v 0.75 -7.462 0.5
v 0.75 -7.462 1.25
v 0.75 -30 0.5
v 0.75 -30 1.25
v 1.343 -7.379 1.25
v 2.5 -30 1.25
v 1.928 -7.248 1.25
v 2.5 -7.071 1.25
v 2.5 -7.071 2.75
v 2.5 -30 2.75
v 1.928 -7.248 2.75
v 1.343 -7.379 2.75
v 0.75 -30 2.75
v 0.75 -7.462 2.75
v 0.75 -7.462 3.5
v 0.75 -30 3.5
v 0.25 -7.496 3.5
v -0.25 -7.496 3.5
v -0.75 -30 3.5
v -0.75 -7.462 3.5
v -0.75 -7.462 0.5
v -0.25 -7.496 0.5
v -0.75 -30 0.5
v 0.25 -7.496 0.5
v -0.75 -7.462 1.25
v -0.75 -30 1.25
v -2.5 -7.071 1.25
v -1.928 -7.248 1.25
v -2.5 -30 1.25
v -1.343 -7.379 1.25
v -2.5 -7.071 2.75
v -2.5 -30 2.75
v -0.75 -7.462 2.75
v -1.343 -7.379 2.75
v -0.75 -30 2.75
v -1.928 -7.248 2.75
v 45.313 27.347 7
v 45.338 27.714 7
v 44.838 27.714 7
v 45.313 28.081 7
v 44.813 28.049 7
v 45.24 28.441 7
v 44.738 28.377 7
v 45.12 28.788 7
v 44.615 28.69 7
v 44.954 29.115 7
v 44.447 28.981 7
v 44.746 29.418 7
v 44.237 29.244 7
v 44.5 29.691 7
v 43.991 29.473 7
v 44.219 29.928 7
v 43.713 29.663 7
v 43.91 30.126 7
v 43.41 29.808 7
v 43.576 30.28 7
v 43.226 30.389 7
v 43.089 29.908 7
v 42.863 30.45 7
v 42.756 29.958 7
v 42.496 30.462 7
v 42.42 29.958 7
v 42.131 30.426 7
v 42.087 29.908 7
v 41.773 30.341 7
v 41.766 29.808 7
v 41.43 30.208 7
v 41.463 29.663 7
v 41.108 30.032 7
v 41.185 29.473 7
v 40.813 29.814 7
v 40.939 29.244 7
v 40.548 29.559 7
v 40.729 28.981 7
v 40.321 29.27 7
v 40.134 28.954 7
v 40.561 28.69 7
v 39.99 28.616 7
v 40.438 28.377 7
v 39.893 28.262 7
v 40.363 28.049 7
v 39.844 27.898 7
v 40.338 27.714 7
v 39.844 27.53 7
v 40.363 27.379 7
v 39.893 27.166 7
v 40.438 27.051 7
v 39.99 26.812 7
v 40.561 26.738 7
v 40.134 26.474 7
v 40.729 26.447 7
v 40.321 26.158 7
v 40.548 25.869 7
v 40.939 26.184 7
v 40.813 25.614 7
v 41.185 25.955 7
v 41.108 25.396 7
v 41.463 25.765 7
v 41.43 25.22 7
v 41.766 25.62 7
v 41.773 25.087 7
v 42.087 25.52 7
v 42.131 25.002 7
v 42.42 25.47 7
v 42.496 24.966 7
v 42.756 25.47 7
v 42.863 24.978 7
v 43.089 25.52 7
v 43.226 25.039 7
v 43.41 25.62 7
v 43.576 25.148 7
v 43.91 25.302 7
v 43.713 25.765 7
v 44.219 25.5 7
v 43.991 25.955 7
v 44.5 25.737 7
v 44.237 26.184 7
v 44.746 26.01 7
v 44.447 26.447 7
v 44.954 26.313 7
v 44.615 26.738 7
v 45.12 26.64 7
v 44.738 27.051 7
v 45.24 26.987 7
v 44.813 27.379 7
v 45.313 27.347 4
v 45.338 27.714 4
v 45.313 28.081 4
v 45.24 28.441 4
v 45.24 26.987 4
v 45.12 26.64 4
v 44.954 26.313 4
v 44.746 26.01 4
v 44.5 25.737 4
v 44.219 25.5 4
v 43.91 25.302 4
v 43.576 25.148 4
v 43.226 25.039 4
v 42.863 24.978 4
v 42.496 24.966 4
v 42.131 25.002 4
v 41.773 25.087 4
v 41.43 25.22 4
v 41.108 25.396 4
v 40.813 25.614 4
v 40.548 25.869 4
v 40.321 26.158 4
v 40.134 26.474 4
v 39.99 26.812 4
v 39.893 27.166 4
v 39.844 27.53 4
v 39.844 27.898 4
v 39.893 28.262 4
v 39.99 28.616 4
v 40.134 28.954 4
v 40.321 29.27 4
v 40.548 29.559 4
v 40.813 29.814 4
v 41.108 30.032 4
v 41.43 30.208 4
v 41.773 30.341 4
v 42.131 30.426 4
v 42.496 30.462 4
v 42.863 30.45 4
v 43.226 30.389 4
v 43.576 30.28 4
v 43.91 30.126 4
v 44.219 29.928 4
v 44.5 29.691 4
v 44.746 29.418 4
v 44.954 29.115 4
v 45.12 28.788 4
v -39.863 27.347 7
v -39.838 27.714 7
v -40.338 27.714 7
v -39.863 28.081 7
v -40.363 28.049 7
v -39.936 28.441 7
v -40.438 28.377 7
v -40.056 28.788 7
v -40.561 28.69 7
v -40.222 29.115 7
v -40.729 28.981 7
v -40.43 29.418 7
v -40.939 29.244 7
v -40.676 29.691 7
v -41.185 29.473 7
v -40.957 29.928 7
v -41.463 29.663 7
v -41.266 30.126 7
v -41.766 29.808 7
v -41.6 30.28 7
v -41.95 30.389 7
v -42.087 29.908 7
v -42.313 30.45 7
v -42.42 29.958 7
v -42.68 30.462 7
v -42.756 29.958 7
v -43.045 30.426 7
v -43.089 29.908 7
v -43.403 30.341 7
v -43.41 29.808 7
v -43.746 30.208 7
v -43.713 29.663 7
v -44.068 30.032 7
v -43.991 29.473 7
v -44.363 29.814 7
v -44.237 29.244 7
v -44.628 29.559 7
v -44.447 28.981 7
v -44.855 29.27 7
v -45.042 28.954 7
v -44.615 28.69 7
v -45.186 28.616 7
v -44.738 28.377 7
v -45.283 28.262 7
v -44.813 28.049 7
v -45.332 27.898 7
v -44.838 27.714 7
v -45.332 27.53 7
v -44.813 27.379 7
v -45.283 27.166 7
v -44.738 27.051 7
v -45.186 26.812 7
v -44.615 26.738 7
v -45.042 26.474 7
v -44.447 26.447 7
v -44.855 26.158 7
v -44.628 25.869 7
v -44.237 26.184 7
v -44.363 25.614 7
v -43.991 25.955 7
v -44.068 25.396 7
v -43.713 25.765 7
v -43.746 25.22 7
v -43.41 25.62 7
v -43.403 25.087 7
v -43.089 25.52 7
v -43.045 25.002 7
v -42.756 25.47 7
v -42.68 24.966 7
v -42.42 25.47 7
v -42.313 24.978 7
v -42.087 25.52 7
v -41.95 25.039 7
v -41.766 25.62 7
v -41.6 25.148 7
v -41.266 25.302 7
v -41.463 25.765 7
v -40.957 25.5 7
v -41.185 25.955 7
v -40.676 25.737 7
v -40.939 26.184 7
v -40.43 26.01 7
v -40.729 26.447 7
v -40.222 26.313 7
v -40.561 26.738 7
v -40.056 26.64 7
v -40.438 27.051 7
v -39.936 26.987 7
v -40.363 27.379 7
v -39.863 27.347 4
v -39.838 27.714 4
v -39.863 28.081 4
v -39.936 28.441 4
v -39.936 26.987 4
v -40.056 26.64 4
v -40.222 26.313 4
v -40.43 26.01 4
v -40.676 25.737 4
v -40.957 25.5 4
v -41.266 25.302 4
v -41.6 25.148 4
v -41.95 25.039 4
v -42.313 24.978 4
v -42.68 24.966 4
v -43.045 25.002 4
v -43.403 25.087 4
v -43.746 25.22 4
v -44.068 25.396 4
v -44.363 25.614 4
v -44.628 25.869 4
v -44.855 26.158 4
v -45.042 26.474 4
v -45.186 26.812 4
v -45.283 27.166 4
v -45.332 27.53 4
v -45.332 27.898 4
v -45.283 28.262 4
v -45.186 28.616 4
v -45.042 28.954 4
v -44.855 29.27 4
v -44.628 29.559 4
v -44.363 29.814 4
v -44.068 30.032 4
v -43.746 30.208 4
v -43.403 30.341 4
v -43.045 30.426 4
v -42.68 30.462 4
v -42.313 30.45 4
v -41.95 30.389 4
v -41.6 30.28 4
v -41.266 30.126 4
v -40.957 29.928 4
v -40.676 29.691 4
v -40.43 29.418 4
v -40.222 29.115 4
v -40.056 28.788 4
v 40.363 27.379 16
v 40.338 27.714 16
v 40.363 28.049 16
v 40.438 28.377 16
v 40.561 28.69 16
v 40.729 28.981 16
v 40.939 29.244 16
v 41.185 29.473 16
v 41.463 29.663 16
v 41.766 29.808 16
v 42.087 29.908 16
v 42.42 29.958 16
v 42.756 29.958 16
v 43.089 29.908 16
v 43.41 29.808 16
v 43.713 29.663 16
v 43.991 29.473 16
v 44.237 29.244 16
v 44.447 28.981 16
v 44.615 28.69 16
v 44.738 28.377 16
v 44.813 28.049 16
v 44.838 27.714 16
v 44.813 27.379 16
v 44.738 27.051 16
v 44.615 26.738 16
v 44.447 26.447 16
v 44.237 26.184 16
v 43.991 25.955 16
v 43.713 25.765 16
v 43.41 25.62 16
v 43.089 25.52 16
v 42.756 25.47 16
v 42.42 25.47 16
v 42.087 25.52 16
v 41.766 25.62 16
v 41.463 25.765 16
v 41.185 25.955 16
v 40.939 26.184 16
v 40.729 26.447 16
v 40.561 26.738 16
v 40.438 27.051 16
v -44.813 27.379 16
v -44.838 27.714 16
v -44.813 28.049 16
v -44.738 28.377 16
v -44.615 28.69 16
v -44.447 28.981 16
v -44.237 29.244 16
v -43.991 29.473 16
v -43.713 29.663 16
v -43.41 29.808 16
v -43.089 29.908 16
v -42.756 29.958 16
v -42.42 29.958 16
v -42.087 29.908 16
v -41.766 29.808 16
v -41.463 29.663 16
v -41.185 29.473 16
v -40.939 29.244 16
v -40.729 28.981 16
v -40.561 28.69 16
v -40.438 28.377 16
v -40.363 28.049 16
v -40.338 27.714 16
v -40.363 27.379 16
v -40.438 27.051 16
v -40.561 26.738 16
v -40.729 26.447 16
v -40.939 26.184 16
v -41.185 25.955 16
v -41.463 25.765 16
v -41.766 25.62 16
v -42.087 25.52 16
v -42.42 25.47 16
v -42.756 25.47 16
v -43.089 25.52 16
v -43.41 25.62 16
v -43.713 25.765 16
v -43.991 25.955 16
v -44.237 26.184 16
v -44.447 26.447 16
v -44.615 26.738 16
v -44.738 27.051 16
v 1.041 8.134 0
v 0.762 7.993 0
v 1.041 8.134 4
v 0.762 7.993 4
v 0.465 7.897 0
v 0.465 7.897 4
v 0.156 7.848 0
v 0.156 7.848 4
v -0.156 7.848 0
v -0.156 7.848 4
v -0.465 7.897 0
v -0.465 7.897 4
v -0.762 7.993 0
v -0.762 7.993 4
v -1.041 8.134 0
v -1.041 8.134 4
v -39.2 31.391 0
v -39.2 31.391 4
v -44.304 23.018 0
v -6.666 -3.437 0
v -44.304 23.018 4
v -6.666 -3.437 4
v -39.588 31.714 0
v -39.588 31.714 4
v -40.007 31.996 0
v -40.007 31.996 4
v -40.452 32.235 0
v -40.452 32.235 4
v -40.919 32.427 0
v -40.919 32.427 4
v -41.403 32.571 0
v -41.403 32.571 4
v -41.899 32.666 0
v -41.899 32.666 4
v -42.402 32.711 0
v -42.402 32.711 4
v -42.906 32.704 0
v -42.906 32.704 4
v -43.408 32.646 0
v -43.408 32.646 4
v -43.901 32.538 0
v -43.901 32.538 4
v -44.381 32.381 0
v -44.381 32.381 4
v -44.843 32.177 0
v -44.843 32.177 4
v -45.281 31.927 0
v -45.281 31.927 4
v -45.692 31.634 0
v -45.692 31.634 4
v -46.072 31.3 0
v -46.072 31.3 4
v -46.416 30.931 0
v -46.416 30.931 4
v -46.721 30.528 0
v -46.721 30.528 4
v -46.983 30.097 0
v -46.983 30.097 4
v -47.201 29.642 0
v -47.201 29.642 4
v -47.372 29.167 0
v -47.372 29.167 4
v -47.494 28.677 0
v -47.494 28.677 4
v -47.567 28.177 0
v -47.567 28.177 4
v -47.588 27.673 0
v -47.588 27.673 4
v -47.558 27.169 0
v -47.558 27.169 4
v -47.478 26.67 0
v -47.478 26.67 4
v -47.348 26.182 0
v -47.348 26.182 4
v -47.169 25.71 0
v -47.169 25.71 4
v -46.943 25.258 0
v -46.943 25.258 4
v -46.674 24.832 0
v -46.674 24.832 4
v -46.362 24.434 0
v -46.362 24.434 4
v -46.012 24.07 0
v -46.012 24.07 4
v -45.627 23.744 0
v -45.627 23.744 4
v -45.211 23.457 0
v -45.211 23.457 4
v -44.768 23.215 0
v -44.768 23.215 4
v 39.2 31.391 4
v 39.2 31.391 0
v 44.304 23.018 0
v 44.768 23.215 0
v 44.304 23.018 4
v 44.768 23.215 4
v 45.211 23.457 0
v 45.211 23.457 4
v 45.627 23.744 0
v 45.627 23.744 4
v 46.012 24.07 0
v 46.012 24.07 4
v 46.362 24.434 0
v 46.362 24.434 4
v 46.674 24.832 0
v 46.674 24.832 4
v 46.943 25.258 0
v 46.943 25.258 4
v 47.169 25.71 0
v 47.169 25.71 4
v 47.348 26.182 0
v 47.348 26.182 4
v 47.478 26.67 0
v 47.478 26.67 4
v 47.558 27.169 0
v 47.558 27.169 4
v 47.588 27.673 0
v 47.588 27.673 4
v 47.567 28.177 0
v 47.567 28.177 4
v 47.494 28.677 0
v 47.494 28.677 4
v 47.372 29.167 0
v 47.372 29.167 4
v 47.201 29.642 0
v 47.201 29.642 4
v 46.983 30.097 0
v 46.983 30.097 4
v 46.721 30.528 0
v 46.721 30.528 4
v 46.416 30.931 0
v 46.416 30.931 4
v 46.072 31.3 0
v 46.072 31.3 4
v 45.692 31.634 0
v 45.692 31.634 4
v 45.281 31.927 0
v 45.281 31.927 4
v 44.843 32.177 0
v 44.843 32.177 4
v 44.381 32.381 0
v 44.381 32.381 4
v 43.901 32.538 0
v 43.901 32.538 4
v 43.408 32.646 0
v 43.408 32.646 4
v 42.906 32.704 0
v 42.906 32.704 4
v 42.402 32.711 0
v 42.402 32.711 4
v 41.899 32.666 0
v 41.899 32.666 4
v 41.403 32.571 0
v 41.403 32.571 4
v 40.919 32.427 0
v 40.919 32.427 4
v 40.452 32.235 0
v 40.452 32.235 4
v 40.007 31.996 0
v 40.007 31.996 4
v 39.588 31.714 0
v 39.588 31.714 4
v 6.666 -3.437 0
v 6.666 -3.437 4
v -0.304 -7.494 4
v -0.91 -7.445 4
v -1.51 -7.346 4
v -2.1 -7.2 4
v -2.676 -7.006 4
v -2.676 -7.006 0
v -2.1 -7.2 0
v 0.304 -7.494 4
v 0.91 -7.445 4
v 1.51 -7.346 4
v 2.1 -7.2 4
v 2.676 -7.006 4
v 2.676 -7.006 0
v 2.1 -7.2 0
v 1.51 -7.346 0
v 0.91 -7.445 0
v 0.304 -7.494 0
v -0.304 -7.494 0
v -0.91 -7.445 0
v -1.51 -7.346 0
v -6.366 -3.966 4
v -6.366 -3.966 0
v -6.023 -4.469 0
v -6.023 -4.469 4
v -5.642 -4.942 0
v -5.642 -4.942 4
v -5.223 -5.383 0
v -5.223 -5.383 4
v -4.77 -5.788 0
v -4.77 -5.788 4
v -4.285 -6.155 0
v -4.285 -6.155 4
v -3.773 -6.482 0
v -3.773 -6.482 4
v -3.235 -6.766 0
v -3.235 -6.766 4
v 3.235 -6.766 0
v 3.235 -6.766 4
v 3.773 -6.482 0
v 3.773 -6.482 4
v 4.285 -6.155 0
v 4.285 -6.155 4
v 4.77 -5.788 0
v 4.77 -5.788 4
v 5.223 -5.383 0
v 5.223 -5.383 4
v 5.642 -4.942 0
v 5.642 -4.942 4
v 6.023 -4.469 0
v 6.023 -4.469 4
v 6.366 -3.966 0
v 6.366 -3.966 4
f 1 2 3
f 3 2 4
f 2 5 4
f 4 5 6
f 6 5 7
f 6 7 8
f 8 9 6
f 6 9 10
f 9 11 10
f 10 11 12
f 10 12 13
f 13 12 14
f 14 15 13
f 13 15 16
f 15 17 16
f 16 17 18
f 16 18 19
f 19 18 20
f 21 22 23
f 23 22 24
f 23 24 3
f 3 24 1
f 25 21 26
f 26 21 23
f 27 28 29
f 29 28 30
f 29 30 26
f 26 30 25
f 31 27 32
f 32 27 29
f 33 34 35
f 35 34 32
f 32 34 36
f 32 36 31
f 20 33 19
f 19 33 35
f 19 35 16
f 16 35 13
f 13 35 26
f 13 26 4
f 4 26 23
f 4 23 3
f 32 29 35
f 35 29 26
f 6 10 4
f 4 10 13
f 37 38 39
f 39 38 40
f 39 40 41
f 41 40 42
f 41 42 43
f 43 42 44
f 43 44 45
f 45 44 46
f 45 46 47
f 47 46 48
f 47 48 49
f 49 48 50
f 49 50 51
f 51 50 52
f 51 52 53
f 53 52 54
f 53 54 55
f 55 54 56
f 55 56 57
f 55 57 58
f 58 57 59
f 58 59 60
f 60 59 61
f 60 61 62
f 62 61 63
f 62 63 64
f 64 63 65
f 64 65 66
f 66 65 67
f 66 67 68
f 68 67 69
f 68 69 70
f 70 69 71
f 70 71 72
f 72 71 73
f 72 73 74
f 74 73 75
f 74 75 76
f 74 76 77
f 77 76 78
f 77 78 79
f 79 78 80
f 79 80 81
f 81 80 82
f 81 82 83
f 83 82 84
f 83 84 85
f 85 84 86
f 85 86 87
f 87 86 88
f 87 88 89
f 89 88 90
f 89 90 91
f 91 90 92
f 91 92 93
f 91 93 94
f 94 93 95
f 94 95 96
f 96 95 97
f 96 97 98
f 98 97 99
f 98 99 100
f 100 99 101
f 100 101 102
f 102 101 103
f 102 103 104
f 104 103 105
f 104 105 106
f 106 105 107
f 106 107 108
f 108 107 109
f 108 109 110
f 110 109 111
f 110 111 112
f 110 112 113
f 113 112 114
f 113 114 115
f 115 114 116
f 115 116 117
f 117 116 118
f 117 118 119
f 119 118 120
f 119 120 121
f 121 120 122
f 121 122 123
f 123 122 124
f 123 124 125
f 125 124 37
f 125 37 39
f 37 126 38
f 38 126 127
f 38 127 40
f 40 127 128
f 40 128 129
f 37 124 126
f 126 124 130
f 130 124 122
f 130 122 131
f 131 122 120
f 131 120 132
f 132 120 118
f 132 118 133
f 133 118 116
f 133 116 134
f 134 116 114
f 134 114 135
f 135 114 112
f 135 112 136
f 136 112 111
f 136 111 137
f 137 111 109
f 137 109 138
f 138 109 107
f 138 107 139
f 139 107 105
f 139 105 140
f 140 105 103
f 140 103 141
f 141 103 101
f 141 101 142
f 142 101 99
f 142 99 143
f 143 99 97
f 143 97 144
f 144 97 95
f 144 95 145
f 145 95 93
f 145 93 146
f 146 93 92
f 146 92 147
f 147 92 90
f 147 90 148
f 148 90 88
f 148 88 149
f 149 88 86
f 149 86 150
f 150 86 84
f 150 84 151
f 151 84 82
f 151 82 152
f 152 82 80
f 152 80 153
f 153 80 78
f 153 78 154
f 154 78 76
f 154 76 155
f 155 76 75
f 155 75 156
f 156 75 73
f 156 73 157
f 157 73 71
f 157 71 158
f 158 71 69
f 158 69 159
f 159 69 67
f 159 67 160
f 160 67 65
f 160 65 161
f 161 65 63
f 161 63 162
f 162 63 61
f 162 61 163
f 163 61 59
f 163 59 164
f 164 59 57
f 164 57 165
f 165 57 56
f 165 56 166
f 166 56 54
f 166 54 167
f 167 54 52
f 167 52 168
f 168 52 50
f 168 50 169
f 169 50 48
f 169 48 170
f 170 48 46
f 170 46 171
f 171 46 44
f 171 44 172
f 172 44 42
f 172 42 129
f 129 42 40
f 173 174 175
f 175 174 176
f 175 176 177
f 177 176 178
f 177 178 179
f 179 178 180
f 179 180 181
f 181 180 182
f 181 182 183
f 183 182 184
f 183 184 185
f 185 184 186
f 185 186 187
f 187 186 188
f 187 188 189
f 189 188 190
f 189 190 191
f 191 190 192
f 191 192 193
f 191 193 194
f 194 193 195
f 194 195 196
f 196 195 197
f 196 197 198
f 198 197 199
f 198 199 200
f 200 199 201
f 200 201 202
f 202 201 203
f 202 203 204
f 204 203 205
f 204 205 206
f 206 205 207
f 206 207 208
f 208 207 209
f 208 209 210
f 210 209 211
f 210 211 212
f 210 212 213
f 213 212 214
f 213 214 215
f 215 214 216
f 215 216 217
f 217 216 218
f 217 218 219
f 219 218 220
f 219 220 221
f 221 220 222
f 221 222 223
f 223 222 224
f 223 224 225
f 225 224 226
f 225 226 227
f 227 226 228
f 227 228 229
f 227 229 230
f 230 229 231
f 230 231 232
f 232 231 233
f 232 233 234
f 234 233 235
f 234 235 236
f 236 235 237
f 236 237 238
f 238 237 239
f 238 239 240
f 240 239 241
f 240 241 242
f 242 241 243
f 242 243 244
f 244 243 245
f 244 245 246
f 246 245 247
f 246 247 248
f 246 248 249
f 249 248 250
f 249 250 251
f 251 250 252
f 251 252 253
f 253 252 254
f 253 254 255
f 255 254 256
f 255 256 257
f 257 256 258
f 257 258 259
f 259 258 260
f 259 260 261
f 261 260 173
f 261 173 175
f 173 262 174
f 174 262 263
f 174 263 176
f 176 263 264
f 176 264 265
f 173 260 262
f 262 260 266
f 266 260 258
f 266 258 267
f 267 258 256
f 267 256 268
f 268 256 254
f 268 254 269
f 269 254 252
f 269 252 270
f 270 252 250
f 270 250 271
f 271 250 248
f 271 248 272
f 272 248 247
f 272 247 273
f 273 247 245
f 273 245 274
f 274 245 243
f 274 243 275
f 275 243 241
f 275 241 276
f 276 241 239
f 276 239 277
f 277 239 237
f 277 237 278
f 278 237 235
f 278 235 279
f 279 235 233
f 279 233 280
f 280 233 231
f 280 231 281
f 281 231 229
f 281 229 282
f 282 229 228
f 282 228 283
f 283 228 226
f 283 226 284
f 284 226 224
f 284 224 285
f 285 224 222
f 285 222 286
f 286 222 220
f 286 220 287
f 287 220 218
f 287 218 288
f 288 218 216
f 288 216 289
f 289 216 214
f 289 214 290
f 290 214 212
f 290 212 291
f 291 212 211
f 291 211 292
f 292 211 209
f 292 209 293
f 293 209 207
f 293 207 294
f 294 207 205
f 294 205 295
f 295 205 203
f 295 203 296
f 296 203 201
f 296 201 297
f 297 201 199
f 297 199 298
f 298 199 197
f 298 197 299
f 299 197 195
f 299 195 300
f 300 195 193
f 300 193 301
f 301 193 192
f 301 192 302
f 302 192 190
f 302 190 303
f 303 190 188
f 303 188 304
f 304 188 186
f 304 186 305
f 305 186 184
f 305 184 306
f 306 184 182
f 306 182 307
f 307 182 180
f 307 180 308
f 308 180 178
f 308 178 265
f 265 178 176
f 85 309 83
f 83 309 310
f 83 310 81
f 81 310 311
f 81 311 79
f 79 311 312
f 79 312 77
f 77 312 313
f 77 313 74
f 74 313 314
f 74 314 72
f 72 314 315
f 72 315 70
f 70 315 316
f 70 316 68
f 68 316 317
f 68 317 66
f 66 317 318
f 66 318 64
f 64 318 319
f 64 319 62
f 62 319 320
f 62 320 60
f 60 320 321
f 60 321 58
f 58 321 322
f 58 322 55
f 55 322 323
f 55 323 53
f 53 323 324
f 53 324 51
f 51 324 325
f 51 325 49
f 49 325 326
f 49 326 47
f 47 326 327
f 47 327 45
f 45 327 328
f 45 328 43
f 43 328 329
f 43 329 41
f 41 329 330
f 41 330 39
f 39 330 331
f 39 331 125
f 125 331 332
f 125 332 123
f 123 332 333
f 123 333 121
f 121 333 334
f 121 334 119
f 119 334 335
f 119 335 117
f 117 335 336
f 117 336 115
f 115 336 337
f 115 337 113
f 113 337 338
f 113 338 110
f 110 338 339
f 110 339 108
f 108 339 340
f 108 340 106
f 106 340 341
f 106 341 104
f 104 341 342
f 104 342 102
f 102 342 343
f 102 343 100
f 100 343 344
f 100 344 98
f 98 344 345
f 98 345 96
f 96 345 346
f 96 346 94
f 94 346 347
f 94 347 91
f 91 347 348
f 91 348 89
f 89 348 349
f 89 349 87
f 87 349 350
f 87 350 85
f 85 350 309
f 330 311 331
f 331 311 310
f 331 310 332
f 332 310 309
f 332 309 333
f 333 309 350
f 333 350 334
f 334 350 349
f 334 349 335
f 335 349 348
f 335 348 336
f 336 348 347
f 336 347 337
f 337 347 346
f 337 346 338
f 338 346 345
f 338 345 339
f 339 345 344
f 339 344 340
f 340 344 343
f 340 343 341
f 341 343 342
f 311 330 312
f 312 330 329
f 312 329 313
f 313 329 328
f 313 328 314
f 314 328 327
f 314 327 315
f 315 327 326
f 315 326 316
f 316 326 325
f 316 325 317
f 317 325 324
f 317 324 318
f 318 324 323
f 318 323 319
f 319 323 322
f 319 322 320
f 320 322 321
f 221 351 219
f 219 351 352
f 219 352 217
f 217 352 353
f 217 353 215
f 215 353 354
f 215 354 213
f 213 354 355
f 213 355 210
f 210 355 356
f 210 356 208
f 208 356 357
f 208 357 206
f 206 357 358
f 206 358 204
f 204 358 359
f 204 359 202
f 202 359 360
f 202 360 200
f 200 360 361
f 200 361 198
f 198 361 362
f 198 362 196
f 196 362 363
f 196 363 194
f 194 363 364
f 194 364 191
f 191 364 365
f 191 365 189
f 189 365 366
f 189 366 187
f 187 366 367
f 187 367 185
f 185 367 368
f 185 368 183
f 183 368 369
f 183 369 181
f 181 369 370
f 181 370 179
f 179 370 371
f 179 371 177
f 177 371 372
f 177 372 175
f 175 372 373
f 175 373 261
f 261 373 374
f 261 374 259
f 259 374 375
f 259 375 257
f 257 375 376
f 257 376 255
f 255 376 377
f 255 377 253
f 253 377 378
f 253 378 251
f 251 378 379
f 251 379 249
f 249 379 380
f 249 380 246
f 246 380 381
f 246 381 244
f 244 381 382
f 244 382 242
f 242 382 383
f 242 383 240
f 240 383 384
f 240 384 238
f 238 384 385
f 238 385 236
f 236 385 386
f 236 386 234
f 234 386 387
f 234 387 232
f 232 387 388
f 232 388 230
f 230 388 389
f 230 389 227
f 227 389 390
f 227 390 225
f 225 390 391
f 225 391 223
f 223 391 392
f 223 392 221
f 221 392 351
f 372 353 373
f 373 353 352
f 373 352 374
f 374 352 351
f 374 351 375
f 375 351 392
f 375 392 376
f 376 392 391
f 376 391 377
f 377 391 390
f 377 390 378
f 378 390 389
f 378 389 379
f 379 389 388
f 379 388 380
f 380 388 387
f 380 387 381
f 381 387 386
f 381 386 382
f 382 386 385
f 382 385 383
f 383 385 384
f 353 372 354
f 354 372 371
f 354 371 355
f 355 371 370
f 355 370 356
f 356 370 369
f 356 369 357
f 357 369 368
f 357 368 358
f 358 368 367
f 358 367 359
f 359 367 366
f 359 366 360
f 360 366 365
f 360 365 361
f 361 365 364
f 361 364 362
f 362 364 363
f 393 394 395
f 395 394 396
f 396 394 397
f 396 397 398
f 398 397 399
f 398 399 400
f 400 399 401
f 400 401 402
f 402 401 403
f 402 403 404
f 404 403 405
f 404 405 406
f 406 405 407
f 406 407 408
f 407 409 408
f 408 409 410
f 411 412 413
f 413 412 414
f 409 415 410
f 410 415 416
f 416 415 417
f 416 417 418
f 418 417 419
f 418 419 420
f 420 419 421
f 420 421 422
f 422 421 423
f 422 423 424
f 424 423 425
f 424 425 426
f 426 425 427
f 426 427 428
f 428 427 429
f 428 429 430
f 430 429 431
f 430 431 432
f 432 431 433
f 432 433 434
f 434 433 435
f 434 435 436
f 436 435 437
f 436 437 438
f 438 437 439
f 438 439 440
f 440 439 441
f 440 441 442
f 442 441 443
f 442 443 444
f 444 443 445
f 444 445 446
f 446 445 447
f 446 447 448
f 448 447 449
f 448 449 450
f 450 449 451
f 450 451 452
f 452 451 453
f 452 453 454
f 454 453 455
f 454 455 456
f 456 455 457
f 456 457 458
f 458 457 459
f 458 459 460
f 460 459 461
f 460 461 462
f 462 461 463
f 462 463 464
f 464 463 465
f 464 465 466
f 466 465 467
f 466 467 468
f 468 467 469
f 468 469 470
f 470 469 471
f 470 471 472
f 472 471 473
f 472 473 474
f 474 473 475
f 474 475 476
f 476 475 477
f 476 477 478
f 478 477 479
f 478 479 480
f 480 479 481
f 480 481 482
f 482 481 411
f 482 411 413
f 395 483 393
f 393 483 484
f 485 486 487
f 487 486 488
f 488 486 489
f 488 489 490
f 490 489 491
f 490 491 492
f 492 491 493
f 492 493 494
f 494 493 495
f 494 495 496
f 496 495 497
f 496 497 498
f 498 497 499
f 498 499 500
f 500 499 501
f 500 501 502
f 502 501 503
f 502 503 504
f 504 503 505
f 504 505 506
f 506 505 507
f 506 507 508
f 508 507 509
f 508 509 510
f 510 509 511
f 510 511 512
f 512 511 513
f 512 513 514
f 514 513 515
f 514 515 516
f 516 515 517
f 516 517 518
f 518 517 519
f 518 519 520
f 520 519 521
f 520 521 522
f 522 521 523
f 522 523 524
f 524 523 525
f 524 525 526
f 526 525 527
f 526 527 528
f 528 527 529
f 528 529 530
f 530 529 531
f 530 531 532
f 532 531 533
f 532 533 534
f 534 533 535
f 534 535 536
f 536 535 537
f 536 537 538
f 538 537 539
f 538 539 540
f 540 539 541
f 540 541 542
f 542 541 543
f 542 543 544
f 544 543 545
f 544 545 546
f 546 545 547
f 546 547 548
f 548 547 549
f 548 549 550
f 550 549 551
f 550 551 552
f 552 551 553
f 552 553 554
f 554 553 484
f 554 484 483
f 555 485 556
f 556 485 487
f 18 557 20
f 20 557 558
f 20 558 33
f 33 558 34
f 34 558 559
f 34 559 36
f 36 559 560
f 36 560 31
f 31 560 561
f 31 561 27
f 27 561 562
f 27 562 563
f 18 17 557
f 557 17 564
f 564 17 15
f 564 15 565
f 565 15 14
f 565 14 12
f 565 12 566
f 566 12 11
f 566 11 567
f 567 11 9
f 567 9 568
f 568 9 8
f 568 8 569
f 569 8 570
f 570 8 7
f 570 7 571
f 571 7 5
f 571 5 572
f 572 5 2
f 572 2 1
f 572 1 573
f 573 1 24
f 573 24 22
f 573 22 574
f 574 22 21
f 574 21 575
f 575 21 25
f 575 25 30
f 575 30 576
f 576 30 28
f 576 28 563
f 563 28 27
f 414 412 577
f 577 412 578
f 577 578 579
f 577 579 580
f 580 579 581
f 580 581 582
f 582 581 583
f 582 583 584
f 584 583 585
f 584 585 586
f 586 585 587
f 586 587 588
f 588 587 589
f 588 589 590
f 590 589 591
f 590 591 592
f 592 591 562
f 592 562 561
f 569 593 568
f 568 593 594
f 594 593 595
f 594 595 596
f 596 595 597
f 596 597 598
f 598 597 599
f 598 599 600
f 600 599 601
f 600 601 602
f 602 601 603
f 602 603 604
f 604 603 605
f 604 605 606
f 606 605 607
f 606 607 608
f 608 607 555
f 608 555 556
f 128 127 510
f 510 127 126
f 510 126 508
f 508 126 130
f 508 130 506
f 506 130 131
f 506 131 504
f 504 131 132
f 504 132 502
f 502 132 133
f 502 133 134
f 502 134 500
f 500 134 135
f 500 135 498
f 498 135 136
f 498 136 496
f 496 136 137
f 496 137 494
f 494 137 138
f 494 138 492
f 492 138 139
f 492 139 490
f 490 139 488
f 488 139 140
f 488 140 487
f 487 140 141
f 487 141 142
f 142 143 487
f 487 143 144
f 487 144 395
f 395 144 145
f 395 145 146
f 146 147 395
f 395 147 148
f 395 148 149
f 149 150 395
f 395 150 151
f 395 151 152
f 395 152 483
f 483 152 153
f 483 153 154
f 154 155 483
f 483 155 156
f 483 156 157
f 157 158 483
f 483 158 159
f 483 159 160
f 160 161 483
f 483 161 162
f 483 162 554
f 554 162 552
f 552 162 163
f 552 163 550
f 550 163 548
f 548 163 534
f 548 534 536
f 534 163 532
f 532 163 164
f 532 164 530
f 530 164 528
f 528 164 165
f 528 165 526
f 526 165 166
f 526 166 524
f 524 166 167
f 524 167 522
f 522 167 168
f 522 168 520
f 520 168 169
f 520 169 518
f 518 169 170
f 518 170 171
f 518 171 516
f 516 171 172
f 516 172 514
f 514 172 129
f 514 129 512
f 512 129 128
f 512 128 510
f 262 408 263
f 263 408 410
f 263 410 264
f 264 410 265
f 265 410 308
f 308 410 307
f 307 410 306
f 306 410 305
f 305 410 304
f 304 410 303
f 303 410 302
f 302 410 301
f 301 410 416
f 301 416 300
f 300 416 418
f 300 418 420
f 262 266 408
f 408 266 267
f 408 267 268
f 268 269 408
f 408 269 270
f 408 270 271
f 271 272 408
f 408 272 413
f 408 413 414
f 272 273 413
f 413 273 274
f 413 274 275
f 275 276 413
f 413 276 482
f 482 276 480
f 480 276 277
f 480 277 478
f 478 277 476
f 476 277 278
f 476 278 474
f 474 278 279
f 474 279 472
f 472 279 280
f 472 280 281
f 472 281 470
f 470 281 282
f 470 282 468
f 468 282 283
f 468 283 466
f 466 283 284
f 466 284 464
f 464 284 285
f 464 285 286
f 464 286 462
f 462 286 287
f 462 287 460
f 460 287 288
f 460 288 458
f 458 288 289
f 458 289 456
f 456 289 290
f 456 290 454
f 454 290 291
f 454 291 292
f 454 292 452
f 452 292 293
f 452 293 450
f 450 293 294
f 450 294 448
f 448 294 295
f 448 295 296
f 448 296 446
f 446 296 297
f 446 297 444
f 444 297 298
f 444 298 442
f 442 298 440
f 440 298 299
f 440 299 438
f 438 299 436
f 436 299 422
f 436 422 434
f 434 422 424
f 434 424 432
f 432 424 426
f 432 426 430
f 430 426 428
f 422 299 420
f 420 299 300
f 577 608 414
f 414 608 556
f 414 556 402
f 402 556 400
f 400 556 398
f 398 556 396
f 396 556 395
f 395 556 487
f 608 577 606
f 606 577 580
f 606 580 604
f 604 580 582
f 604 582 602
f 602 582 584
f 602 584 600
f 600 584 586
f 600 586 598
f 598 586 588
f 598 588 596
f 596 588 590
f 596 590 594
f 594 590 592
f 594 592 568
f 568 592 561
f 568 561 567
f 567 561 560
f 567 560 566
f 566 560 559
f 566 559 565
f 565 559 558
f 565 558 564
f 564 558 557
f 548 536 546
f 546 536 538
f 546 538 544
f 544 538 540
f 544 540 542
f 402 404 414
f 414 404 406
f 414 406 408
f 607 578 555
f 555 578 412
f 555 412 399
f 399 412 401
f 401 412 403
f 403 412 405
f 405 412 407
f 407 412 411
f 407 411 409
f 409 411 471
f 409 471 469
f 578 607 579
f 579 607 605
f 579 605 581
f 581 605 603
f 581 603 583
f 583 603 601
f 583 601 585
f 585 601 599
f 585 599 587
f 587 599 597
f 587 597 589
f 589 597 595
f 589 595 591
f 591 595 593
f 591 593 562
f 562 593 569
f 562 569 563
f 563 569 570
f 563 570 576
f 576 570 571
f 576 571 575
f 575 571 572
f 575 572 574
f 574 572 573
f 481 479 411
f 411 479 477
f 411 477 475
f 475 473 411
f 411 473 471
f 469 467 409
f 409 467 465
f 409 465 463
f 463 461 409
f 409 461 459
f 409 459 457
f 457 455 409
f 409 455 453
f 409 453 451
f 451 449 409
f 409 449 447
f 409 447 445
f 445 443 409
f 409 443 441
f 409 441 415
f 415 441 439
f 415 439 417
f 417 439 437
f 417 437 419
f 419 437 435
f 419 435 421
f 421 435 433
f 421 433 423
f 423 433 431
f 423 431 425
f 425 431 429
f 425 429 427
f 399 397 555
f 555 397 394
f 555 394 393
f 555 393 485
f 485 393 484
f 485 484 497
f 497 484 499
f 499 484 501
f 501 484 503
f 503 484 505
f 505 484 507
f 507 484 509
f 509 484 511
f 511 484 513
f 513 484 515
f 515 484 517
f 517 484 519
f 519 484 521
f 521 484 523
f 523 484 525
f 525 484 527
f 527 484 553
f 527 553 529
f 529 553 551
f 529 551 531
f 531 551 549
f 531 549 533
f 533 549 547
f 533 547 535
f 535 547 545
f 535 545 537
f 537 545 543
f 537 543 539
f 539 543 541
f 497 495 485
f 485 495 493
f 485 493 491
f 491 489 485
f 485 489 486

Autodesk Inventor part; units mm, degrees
ref_plane "YZ Plane" through (0, 0, 0) normal (1, 0, 0) x (0, 1, 0)
ref_plane "XZ Plane" through (0, 0, 0) normal (0, 1, 0) x (-1, 0, 0)
ref_plane "XY Plane" through (0, 0, 0) normal (0, 0, 1) x (1, 0, 0)
sketch "Sketch1" plane through (0, 0, 0) normal (0, 0, 1) x (1, 0, 0)
  arc A0 (44.3036, 23.0175) -> (39.2001, 31.3912) centre (42.588, 27.714) ccw
  arc A1 (-39.2001, 31.3912) -> (-44.3036, 23.0175) centre (-42.588, 27.714) ccw
  arc A2 (-6.666, -3.4373) -> (6.666, -3.4373) centre (0, 0) ccw
  line L0 (0, 7.5) -> (39.2001, 31.3912)
  line L1 (6.666, -3.4373) -> (44.3036, 23.0175)
  line L2 (0, 7.5) -> (-39.2001, 31.3912)
  line L3 (-6.666, -3.4373) -> (-44.3036, 23.0175)
  dimension "d5" = 10
  dimension "d6" = 10
  dimension "d7" = 15
extrude "Extrusion1" add sketch "Sketch1" along normal blind 4
fillet "Fillet1" radius 2 1 edges at (0, 7.5, 2)
sketch "Sketch2" plane through (0, 0, 4) normal (0, 0, 1) x (1, 0, 0)
  arc A0 (44.3036, 23.0175) -> (39.2001, 31.3912) centre (42.588, 27.714) ccw projected
  circle A1 centre (42.588, 27.714) radius 2.25
  arc A2 (-39.2001, 31.3912) -> (-44.3036, 23.0175) centre (-42.588, 27.714) ccw projected
  circle A3 centre (-42.588, 27.714) radius 2.25
  point P0 (0, 0)
  dimension "d11" = 4.5
  dimension "d12" = 4.5
extrude "Extrusion2" add sketch "Sketch2" along normal blind 12
sketch "Sketch3" plane through (0, 0, 4) normal (0, 0, 1) x (1, 0, 0)
  arc A0 (44.3036, 23.0175) -> (39.2001, 31.3912) centre (42.588, 27.714) ccw projected
  circle A1 centre (42.588, 27.714) radius 2.75
  circle A2 centre (-42.588, 27.714) radius 2.25 projected
  circle A3 centre (-42.588, 27.714) radius 2.75
  point P0 (0, 0)
  dimension "d15" = 5.5
  dimension "d16" = 5.5
extrude "Extrusion3" add sketch "Sketch3" along normal blind 3 contours A1 | A2 | A3
sketch "Sketch4" plane through (0, 0, 0) normal (0, 1, 0) x (-1, 0, 0)
  line L0 (2.5, 1.25) -> (-2.5, 1.25)
  line L1 (-2.5, 1.25) -> (-2.5, 2.75)
  line L2 (-2.5, 2.75) -> (2.5, 2.75)
  line L3 (2.5, 2.75) -> (2.5, 1.25)
  line L4 (2.5, 1.25) -> (-2.5, 2.75) construction
  line L5 (-2.5, 1.25) -> (2.5, 2.75) construction
  line L6 (-0.75, 0.5) -> (-0.75, 3.5)
  line L7 (-0.75, 3.5) -> (0.75, 3.5)
  line L8 (0.75, 3.5) -> (0.75, 0.5)
  line L9 (0.75, 0.5) -> (-0.75, 0.5)
  line L10 (-0.75, 0.5) -> (0.75, 3.5) construction
  line L11 (-0.75, 3.5) -> (0.75, 0.5) construction
  point P0 (0, 0)
  point P1 (0, 2)
  point P2 (0, 2)
  point P3 (-0.75, 2.75)
  point P4 (-0.75, 1.25)
  point P5 (0.75, 1.25)
  point P6 (0.75, 2.75)
  dimension "d19" = 5
  dimension "d20" = 1.5
  dimension "d21" = 3
  dimension "d22" = 1.5
extrude "Extrusion4" add sketch "Sketch4" against normal blind 30
sketch "Sketch5" plane through (0, 0, 4) normal (0, 0, 1) x (1, 0, 0)
  point P0 (0, 0)
sketch "Sketch6" plane through (0, -30, 0) normal (0, -1, 0) x (1, 0, 0)
  point P0 (0, 0)
properties part number "Gripper Base" material "Gold"
